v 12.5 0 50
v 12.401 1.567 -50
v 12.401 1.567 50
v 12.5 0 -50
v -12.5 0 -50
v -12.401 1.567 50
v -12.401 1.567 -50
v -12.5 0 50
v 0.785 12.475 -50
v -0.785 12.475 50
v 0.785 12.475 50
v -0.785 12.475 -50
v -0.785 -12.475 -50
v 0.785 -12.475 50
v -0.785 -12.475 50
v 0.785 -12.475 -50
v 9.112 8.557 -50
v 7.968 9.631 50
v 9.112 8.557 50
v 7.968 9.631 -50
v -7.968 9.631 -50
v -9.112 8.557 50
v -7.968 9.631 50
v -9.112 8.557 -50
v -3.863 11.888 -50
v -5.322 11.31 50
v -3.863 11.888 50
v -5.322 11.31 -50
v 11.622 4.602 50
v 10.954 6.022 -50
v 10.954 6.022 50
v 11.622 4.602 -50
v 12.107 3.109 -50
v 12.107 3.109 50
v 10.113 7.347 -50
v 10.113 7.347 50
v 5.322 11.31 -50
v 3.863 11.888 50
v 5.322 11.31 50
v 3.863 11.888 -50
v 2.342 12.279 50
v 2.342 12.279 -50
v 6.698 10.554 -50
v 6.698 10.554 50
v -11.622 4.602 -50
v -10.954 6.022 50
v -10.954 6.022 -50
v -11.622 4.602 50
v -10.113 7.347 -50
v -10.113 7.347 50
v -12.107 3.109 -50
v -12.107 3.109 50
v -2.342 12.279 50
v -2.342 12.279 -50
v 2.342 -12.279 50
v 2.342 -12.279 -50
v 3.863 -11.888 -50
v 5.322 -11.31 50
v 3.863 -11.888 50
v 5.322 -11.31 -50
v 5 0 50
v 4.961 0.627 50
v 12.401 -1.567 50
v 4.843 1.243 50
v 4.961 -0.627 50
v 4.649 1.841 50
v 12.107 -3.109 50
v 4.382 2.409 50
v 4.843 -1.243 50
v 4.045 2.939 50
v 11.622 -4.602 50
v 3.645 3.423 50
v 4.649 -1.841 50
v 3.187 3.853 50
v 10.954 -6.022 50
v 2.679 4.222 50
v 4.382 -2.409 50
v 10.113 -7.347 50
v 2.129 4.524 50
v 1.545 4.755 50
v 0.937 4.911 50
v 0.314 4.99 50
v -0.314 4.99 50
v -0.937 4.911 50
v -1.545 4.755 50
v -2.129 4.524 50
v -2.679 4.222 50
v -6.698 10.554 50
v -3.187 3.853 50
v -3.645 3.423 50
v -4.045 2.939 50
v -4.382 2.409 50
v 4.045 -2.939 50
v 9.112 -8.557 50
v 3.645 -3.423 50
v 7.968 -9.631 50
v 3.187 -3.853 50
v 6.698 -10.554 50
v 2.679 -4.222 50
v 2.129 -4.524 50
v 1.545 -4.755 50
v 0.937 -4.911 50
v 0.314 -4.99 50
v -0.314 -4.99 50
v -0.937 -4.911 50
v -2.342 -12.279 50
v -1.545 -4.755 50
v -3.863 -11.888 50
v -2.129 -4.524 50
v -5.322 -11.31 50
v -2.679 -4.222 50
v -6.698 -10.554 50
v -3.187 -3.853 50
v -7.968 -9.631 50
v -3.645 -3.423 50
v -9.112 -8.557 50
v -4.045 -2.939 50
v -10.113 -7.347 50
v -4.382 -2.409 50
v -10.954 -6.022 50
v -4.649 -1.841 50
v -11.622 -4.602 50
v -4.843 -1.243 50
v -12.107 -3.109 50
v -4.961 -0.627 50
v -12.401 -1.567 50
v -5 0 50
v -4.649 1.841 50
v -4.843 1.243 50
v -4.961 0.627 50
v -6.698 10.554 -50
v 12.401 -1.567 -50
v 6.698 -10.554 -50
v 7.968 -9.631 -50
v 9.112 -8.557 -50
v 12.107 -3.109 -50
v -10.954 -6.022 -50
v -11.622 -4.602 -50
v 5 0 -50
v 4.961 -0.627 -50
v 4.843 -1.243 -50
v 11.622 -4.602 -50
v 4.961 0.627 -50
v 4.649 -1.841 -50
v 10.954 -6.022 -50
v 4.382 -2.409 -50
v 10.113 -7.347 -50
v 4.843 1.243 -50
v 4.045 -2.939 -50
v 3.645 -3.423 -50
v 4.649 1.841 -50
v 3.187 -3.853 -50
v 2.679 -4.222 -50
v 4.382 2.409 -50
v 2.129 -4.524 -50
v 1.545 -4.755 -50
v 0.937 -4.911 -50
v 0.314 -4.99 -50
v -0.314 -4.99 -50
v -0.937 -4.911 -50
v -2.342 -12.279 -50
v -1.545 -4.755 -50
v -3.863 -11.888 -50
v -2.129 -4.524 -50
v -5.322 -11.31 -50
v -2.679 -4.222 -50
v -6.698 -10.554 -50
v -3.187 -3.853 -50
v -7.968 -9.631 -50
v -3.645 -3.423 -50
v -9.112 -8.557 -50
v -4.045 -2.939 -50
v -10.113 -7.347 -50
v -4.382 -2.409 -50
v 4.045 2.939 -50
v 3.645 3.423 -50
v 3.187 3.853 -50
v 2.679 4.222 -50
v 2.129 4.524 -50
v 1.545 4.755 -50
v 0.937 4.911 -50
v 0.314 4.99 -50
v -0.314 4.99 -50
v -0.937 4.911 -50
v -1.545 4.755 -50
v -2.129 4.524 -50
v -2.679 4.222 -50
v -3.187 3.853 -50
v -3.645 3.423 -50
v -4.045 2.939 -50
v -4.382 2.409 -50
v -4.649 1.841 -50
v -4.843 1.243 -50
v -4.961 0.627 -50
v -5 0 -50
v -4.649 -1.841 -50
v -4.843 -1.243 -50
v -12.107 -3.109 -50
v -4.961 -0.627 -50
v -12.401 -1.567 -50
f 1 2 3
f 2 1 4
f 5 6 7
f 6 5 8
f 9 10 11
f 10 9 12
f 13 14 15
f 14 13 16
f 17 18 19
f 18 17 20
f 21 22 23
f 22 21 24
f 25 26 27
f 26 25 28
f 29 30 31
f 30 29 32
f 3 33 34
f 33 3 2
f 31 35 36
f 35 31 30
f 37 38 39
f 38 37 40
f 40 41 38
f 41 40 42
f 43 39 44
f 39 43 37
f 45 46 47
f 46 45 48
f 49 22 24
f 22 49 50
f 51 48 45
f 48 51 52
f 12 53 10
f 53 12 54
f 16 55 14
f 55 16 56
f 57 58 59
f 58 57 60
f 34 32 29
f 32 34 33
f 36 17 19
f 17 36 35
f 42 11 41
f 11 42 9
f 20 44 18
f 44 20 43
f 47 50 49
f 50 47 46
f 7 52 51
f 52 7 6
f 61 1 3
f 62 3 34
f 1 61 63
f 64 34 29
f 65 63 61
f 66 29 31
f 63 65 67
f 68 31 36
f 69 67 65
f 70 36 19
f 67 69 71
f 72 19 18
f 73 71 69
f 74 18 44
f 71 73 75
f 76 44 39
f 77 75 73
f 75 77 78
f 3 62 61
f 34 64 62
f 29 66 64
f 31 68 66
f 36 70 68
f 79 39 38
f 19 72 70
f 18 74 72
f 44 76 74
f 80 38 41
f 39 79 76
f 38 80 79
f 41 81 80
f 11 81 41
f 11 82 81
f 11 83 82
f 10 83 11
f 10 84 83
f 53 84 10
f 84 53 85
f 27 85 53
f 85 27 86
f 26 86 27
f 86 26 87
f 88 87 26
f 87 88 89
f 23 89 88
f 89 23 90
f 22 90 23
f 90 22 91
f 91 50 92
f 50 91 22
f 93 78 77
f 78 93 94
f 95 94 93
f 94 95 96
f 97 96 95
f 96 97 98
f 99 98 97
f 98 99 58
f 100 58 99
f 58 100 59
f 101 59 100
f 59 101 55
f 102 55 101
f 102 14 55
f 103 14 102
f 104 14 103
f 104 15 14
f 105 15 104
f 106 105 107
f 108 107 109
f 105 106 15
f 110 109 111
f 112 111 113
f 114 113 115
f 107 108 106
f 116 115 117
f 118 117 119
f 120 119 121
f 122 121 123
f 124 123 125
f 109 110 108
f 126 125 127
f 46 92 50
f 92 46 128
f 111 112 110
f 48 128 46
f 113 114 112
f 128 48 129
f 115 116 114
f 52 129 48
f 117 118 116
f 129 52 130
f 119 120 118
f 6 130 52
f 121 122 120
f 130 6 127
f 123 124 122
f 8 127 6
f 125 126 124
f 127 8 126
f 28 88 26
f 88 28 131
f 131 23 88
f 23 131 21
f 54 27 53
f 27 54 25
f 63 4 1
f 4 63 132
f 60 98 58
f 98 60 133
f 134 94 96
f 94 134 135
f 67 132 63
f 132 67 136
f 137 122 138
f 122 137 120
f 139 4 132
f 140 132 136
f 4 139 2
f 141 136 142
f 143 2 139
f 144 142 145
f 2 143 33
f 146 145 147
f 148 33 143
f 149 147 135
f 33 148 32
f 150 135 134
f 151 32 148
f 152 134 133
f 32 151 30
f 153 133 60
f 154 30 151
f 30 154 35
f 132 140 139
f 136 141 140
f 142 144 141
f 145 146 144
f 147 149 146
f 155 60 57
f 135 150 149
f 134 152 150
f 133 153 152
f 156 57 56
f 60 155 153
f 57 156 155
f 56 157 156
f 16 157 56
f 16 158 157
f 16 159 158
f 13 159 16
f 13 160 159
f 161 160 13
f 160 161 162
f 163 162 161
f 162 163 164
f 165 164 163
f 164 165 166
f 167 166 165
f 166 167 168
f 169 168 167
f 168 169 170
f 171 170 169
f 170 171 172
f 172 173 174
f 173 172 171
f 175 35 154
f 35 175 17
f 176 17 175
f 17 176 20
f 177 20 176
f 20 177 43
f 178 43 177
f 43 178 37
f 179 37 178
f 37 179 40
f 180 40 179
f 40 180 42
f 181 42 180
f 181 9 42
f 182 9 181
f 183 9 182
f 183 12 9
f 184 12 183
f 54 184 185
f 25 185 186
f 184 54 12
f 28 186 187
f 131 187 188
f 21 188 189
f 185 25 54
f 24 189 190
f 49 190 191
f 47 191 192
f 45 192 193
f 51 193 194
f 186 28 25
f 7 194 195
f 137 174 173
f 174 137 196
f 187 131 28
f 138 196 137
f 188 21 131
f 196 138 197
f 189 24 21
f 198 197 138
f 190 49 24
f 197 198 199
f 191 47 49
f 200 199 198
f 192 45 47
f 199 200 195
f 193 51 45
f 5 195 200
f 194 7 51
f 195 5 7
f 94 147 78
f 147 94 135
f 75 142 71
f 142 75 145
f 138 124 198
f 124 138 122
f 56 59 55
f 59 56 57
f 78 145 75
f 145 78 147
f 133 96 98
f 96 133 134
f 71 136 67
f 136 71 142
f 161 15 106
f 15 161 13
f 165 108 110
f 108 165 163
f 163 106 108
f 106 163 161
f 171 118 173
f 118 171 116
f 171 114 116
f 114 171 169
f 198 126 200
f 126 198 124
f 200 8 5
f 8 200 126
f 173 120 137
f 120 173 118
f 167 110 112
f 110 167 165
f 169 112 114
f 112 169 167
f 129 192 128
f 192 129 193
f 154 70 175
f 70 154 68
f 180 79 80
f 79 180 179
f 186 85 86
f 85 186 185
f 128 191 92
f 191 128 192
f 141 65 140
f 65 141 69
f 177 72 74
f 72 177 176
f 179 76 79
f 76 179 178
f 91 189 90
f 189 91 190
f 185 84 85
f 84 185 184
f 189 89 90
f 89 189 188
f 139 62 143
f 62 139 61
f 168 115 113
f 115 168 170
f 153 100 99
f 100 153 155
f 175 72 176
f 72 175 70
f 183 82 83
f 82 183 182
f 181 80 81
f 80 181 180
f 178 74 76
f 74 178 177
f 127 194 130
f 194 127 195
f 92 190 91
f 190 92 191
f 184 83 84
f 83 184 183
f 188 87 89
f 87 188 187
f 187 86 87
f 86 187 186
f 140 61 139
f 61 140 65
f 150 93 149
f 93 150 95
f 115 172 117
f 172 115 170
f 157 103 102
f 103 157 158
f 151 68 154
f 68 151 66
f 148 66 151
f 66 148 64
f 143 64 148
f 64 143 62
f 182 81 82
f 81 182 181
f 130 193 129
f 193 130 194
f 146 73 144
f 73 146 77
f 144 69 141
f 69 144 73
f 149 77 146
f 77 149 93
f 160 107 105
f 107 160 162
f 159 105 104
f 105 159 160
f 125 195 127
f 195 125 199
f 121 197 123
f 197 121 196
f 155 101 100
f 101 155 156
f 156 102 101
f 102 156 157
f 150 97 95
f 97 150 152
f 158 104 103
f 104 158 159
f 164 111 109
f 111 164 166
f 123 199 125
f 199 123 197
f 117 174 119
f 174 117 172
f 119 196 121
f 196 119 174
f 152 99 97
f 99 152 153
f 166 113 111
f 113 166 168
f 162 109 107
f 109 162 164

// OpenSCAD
$fn = 50;


difference() {
	union() {
		translate(v = [0, 0, -50.0000000000]) {
			cylinder(h = 100, r = 12.5000000000);
		}
	}
	union() {
		translate(v = [0, 0, -100.0000000000]) {
			cylinder(h = 200, r = 5);
		}
	}
}
